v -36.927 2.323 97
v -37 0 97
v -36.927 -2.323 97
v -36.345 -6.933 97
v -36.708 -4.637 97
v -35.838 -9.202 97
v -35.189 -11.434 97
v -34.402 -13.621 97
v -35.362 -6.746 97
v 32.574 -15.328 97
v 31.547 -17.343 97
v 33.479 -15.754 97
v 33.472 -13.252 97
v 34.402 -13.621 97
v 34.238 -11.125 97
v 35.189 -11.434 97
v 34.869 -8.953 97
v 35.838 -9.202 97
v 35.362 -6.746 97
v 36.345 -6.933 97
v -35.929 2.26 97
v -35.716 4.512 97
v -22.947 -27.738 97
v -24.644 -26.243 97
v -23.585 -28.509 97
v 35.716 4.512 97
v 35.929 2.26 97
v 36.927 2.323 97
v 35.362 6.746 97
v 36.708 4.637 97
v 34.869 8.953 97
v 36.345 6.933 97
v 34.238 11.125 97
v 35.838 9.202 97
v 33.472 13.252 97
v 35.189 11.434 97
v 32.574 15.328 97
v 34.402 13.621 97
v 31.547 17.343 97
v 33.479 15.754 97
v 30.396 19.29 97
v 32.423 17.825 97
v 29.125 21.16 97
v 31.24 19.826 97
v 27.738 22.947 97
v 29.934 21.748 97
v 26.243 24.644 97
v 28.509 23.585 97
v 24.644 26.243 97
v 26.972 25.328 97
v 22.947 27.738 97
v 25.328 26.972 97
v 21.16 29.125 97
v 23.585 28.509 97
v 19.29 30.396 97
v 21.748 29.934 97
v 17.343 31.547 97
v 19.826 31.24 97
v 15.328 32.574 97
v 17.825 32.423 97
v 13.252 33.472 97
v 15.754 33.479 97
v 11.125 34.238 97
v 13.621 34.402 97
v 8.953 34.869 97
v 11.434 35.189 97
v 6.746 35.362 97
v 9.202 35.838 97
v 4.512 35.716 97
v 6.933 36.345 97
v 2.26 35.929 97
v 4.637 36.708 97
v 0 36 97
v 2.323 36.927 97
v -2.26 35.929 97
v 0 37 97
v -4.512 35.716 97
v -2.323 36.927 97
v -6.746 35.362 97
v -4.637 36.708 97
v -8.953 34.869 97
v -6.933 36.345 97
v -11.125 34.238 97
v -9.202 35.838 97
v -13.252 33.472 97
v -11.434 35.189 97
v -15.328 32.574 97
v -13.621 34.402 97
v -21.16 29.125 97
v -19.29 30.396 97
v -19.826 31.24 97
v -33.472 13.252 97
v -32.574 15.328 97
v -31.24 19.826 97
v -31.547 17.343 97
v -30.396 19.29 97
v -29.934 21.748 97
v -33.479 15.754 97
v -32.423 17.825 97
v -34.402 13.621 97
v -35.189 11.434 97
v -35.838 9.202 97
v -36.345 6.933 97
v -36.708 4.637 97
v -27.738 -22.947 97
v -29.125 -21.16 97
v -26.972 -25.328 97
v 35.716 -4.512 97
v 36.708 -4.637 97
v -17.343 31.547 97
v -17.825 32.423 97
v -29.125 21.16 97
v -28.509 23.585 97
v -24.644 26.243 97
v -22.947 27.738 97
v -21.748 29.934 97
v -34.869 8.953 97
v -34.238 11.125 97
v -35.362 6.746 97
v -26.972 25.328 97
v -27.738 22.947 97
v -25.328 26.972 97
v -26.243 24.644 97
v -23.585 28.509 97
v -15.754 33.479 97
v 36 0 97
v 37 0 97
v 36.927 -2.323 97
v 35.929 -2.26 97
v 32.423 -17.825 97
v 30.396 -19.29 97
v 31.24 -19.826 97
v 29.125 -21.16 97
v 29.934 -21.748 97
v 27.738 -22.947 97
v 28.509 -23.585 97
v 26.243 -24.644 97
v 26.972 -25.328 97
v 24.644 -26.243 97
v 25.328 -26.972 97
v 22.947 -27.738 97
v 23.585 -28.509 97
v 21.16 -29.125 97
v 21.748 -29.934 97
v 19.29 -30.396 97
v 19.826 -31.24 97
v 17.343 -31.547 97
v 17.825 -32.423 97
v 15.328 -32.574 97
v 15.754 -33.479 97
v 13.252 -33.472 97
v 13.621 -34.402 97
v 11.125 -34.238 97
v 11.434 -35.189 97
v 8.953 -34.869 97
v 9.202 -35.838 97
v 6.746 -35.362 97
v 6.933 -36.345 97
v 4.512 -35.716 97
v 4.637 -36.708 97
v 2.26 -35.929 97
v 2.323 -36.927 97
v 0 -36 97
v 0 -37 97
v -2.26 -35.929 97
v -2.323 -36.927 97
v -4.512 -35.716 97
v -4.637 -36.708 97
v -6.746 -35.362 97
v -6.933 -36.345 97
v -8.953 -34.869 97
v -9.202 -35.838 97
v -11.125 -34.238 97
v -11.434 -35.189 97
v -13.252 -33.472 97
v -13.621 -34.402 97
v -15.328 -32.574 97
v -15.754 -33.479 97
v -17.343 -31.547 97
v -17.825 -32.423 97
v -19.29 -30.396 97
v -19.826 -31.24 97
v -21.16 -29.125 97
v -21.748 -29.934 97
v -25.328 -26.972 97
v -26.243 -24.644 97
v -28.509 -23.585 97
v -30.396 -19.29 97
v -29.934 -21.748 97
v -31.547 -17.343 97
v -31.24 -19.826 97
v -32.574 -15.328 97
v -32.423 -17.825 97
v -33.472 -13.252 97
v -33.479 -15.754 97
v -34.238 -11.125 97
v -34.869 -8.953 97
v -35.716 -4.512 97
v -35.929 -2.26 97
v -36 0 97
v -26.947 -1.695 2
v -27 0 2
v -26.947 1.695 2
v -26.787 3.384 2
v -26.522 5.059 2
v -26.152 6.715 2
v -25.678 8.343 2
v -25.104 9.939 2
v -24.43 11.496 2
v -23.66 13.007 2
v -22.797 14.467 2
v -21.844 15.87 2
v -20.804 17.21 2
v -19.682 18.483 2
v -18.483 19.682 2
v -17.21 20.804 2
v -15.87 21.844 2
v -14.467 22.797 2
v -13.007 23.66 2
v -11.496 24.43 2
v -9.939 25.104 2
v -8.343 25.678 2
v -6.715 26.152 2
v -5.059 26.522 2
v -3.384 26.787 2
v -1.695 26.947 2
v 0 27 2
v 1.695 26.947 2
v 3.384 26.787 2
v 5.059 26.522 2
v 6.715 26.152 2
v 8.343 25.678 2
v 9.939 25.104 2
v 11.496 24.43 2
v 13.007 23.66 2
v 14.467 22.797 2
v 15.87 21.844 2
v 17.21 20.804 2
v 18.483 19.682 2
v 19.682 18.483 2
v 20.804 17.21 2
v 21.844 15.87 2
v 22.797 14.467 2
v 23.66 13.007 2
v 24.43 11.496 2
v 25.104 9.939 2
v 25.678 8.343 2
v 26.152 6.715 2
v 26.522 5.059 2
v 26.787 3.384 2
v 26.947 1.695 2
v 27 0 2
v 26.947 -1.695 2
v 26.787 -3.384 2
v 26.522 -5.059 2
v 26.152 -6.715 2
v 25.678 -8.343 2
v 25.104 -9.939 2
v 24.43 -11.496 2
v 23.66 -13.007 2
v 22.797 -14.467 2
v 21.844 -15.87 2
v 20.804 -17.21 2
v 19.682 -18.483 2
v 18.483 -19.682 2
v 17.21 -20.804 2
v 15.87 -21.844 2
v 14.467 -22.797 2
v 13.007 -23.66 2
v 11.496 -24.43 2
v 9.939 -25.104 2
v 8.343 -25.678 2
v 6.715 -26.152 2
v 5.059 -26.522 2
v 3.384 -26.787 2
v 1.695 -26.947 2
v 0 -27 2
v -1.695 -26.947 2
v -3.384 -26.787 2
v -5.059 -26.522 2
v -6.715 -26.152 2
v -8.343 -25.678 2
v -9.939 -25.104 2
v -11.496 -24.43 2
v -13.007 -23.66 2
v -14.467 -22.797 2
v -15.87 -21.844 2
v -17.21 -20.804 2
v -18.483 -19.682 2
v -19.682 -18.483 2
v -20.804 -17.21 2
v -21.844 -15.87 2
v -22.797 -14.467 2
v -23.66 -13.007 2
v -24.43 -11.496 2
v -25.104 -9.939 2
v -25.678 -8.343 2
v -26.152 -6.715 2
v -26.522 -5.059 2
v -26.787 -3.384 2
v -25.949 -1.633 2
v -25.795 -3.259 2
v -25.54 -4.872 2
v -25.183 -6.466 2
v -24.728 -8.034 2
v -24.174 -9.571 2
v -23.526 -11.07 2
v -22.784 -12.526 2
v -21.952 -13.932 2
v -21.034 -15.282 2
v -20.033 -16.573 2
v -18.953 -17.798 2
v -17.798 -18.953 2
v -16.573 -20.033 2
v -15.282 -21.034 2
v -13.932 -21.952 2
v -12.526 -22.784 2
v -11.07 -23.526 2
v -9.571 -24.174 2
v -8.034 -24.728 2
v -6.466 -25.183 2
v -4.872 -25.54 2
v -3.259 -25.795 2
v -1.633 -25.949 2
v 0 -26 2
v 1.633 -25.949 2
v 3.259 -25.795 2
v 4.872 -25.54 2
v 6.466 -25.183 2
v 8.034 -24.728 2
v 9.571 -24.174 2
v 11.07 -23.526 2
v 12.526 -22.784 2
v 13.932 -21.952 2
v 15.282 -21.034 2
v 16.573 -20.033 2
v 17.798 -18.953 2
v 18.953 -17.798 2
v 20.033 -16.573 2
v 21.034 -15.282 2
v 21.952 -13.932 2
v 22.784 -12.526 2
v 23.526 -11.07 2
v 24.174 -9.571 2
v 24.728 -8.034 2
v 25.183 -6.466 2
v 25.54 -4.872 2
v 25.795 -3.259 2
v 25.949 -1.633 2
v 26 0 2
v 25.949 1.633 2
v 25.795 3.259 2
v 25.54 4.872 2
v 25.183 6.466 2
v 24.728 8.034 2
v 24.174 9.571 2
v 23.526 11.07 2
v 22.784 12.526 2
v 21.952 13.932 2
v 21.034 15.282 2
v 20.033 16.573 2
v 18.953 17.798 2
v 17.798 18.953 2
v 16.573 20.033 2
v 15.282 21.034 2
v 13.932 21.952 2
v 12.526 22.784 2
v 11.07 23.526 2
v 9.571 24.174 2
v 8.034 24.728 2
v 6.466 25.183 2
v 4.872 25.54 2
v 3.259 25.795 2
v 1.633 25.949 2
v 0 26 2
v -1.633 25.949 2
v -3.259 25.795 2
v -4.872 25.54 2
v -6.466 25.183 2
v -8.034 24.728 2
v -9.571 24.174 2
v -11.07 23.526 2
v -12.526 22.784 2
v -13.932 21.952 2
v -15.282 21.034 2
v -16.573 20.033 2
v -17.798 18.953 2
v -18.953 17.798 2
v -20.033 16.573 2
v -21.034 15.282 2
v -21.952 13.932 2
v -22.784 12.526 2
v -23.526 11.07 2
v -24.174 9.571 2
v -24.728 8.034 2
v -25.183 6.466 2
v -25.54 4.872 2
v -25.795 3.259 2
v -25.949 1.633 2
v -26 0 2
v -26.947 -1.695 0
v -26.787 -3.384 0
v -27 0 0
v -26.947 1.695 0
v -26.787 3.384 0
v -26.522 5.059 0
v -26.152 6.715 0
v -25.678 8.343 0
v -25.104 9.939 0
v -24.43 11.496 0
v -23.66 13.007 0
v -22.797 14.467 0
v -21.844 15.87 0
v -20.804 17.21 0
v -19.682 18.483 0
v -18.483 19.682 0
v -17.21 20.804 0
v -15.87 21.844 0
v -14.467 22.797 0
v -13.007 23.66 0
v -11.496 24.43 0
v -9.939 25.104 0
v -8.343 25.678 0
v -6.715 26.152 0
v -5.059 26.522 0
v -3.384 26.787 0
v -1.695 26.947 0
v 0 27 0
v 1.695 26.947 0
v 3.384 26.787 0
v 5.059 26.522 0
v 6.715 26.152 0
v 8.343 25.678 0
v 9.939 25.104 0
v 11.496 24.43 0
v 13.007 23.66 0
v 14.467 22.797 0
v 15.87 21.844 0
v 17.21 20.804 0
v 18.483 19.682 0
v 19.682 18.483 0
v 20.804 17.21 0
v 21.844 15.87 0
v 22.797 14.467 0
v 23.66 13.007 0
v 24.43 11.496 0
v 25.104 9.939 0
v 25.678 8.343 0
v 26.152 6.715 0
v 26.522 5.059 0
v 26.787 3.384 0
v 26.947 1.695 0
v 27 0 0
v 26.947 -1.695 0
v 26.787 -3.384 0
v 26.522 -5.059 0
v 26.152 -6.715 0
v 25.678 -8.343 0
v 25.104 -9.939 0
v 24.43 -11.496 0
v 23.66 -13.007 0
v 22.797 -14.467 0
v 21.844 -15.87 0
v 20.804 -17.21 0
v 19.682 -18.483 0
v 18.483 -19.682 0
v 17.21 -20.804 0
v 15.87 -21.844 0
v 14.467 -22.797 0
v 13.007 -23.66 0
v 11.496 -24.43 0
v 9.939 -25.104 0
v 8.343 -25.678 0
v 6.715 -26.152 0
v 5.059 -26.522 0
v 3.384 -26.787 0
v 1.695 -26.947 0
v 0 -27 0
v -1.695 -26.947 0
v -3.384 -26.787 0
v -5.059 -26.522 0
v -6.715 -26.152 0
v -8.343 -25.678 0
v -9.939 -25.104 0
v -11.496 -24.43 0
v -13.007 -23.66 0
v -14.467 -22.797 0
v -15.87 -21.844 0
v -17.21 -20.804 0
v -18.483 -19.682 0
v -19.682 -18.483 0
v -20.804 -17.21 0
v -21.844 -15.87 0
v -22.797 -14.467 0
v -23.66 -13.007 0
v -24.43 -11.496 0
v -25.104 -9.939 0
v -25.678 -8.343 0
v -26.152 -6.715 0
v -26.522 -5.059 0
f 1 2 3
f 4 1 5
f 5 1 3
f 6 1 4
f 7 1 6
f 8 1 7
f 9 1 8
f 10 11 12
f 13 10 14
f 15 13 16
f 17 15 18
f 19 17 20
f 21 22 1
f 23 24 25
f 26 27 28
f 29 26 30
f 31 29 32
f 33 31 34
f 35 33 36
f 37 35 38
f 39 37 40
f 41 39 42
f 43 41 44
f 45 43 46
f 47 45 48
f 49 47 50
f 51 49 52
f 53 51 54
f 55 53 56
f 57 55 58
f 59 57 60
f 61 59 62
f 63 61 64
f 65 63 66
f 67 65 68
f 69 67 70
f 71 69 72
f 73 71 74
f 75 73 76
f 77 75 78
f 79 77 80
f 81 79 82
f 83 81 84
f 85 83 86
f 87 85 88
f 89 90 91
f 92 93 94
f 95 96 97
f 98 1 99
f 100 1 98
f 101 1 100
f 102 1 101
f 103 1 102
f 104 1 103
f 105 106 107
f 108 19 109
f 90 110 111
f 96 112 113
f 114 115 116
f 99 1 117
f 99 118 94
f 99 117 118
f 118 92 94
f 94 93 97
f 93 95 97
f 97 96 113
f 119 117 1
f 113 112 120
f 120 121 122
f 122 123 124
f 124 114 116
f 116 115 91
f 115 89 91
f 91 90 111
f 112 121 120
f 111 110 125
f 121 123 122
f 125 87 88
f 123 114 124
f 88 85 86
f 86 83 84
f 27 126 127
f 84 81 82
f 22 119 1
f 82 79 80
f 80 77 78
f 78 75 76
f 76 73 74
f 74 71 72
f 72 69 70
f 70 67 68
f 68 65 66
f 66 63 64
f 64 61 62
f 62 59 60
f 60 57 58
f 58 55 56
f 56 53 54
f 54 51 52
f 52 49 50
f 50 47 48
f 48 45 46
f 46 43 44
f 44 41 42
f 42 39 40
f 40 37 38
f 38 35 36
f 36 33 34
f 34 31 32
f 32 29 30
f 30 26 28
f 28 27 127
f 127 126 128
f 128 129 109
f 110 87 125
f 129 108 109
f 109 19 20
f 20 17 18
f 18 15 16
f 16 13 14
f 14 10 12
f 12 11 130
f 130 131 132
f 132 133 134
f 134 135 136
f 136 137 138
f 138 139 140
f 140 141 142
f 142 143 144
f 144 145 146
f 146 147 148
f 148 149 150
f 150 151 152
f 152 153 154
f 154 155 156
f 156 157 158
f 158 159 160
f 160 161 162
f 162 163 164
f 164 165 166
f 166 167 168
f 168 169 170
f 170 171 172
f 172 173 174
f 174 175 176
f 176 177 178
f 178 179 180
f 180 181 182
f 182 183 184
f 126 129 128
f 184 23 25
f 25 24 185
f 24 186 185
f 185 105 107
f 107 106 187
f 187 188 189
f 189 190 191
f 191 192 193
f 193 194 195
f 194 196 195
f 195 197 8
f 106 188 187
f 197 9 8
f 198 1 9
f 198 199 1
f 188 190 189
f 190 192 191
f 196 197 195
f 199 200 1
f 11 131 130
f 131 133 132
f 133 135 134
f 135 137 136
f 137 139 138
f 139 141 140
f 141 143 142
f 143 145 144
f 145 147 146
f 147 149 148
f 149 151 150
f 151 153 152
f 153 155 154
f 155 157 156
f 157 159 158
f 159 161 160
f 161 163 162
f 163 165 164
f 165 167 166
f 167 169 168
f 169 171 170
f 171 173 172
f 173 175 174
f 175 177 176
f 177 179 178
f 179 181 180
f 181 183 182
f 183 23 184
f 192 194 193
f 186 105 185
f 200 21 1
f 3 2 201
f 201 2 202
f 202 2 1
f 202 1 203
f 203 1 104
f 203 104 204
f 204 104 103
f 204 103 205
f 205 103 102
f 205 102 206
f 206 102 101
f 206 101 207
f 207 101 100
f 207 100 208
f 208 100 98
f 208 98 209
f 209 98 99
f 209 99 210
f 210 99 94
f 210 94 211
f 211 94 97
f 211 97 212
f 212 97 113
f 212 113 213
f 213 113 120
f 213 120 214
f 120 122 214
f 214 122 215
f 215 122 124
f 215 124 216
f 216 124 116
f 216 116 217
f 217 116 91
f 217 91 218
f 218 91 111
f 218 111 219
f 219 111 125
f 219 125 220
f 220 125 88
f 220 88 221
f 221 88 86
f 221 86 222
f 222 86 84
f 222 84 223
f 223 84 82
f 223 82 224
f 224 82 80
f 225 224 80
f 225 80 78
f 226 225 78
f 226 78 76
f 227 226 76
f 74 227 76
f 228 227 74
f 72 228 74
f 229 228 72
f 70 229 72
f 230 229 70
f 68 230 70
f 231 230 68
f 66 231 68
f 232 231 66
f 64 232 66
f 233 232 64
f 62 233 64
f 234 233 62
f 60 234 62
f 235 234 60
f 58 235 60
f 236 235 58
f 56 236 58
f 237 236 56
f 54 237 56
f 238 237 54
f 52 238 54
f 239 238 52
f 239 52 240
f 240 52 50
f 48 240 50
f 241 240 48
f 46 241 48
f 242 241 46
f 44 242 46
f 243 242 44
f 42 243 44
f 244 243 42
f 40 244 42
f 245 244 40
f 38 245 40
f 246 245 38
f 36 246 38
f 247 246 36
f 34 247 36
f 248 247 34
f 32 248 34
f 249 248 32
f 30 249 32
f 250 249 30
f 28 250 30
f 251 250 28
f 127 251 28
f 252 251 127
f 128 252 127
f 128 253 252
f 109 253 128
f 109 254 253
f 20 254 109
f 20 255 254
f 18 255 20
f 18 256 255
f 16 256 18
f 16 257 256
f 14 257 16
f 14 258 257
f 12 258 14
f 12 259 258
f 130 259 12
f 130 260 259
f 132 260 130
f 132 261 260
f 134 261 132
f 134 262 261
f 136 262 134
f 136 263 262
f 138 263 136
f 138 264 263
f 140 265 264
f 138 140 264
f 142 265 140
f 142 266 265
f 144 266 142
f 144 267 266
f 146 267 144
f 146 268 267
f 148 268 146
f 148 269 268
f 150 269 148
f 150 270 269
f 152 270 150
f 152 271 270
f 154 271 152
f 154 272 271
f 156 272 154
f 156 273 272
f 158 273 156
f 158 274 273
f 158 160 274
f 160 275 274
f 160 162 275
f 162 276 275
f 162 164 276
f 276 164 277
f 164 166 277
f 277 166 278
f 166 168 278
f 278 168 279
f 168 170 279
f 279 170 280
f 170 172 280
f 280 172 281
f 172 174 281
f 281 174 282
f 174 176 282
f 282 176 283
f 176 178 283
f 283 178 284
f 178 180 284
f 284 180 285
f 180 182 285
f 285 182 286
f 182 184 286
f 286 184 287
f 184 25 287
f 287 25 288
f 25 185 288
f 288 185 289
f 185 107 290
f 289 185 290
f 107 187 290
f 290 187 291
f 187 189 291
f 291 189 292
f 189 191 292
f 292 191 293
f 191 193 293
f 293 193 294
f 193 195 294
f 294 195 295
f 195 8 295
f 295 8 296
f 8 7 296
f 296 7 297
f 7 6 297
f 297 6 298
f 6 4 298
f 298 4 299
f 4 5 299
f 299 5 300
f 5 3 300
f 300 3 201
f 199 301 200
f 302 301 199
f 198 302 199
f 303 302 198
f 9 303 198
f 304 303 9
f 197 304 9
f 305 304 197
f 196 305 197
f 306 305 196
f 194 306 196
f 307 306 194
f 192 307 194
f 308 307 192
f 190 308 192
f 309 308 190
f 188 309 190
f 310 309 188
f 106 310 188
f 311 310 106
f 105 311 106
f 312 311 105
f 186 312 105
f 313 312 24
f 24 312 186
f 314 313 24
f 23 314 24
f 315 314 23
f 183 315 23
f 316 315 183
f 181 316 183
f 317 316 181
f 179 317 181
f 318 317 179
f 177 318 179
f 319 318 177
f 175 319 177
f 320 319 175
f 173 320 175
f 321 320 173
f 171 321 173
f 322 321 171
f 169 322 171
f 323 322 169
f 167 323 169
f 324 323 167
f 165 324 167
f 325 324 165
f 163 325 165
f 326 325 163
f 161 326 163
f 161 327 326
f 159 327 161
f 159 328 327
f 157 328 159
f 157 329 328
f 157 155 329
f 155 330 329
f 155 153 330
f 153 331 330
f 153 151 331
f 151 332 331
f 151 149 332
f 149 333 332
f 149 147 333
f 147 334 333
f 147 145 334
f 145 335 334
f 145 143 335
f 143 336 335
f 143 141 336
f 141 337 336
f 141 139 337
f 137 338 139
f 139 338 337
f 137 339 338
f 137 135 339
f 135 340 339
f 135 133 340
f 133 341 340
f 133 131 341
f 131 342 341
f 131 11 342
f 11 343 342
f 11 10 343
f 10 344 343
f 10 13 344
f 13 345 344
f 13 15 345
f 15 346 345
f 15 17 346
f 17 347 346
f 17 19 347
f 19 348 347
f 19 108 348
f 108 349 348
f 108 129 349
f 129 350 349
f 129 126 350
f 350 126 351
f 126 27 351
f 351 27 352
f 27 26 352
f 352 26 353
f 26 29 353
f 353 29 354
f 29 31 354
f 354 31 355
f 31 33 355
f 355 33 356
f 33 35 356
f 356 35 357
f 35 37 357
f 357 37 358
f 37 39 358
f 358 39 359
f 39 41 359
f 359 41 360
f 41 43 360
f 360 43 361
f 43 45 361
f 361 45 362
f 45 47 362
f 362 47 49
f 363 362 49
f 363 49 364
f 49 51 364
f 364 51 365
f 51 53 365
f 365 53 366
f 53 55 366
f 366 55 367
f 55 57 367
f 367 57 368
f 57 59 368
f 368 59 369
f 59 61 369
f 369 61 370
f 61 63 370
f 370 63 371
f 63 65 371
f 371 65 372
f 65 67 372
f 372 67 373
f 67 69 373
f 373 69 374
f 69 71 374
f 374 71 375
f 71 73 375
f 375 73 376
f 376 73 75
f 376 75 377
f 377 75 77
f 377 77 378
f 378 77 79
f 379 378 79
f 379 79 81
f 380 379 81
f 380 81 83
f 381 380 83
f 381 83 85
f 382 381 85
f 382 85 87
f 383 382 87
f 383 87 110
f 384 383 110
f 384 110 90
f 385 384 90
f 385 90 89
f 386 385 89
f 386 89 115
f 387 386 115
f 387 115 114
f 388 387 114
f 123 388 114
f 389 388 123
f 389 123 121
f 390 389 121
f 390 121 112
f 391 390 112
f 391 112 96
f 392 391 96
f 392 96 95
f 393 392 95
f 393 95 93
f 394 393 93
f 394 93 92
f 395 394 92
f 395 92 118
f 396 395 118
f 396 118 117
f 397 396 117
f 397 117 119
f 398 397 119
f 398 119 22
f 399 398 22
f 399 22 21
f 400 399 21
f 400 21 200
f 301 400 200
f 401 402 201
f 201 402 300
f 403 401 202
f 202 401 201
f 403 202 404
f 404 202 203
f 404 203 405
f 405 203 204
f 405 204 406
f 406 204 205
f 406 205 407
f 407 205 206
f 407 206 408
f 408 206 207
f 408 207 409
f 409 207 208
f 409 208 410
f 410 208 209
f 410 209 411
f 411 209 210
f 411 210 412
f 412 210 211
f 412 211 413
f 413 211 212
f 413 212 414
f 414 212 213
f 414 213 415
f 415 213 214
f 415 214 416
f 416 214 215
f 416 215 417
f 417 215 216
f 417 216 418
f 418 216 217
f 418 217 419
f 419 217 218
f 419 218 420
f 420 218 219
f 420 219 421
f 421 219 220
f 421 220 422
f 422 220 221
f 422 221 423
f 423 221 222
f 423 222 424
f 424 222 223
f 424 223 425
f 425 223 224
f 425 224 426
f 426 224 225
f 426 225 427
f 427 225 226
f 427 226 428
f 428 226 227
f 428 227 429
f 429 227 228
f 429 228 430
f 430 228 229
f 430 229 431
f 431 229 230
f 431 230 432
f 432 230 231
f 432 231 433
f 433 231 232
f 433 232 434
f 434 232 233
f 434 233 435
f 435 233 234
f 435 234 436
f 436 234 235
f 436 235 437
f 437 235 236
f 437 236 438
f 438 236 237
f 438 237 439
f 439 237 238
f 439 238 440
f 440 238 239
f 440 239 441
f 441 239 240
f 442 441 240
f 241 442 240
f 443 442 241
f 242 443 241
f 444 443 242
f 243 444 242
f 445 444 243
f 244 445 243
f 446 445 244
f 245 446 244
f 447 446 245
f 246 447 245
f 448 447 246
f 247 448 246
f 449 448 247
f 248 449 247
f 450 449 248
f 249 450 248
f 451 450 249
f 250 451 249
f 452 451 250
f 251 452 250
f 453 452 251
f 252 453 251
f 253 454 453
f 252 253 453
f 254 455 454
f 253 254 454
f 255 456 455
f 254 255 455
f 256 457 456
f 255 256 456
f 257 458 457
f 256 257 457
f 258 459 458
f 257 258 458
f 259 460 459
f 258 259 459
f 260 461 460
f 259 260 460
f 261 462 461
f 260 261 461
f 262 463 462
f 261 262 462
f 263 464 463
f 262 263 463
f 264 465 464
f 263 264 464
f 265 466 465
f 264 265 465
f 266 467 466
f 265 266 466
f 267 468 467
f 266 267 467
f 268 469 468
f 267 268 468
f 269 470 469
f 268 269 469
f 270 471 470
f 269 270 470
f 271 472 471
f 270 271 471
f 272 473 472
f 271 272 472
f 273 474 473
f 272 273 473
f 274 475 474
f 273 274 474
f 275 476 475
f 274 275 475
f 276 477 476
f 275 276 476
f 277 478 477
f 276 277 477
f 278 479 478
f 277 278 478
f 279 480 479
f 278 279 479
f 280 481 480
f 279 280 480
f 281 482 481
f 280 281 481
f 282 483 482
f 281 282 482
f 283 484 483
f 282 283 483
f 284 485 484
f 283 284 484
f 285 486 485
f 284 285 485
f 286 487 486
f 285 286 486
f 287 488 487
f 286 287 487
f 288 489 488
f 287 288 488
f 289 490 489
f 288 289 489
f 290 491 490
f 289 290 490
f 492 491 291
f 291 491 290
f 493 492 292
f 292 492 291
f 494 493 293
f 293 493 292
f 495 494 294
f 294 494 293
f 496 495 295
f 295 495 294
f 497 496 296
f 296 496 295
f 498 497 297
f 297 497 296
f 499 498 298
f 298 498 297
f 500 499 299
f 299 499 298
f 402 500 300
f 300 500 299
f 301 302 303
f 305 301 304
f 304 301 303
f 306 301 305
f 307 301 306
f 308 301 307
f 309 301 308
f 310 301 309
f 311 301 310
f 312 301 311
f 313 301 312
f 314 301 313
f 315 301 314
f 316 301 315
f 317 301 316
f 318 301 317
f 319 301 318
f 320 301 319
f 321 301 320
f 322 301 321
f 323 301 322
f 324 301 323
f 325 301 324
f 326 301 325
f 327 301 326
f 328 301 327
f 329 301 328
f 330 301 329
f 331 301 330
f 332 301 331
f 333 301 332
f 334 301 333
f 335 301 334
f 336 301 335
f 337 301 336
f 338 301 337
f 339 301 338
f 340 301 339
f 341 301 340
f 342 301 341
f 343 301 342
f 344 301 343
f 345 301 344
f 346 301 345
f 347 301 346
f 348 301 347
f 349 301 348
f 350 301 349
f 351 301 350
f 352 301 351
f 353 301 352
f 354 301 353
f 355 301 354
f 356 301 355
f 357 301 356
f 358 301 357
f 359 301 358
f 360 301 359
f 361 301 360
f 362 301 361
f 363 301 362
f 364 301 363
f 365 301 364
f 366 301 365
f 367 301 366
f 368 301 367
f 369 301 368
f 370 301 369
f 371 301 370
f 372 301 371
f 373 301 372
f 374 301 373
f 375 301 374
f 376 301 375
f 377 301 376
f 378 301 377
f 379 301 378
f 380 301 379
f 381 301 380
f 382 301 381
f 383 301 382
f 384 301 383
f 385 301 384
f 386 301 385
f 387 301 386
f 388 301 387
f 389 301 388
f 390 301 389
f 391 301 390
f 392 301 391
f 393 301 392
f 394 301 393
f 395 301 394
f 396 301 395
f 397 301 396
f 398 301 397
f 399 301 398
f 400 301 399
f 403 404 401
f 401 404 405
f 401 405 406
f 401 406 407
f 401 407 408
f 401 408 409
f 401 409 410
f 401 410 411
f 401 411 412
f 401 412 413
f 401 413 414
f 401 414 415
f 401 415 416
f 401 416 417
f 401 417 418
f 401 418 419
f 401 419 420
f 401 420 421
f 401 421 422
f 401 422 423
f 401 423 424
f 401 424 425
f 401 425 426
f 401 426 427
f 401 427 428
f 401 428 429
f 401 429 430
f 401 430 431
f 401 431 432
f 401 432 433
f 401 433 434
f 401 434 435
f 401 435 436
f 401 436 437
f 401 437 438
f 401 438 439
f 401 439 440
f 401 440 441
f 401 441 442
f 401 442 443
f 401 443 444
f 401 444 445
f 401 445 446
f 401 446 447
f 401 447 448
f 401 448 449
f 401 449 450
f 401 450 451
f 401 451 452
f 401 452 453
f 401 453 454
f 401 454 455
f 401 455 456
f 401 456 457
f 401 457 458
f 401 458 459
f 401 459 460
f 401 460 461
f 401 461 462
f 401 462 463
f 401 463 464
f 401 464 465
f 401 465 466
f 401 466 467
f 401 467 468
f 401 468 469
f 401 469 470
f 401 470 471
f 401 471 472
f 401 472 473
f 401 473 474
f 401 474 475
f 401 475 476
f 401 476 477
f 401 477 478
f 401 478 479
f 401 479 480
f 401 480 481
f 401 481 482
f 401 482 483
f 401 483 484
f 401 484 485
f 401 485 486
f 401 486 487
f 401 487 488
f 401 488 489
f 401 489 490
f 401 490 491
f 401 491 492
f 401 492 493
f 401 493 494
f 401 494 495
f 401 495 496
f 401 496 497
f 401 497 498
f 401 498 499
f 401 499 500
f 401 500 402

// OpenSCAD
fn = 100;
union(){
	difference(){
		translate ([0,0,2]) cylinder(r1=27, r2=37, h=95, $fn=fn); 
		translate ([0,0,2]) cylinder(r1=26, r2=36, h=95, $fn=fn);
	};
	cylinder(r=27, h=2, $fn=fn);
}
